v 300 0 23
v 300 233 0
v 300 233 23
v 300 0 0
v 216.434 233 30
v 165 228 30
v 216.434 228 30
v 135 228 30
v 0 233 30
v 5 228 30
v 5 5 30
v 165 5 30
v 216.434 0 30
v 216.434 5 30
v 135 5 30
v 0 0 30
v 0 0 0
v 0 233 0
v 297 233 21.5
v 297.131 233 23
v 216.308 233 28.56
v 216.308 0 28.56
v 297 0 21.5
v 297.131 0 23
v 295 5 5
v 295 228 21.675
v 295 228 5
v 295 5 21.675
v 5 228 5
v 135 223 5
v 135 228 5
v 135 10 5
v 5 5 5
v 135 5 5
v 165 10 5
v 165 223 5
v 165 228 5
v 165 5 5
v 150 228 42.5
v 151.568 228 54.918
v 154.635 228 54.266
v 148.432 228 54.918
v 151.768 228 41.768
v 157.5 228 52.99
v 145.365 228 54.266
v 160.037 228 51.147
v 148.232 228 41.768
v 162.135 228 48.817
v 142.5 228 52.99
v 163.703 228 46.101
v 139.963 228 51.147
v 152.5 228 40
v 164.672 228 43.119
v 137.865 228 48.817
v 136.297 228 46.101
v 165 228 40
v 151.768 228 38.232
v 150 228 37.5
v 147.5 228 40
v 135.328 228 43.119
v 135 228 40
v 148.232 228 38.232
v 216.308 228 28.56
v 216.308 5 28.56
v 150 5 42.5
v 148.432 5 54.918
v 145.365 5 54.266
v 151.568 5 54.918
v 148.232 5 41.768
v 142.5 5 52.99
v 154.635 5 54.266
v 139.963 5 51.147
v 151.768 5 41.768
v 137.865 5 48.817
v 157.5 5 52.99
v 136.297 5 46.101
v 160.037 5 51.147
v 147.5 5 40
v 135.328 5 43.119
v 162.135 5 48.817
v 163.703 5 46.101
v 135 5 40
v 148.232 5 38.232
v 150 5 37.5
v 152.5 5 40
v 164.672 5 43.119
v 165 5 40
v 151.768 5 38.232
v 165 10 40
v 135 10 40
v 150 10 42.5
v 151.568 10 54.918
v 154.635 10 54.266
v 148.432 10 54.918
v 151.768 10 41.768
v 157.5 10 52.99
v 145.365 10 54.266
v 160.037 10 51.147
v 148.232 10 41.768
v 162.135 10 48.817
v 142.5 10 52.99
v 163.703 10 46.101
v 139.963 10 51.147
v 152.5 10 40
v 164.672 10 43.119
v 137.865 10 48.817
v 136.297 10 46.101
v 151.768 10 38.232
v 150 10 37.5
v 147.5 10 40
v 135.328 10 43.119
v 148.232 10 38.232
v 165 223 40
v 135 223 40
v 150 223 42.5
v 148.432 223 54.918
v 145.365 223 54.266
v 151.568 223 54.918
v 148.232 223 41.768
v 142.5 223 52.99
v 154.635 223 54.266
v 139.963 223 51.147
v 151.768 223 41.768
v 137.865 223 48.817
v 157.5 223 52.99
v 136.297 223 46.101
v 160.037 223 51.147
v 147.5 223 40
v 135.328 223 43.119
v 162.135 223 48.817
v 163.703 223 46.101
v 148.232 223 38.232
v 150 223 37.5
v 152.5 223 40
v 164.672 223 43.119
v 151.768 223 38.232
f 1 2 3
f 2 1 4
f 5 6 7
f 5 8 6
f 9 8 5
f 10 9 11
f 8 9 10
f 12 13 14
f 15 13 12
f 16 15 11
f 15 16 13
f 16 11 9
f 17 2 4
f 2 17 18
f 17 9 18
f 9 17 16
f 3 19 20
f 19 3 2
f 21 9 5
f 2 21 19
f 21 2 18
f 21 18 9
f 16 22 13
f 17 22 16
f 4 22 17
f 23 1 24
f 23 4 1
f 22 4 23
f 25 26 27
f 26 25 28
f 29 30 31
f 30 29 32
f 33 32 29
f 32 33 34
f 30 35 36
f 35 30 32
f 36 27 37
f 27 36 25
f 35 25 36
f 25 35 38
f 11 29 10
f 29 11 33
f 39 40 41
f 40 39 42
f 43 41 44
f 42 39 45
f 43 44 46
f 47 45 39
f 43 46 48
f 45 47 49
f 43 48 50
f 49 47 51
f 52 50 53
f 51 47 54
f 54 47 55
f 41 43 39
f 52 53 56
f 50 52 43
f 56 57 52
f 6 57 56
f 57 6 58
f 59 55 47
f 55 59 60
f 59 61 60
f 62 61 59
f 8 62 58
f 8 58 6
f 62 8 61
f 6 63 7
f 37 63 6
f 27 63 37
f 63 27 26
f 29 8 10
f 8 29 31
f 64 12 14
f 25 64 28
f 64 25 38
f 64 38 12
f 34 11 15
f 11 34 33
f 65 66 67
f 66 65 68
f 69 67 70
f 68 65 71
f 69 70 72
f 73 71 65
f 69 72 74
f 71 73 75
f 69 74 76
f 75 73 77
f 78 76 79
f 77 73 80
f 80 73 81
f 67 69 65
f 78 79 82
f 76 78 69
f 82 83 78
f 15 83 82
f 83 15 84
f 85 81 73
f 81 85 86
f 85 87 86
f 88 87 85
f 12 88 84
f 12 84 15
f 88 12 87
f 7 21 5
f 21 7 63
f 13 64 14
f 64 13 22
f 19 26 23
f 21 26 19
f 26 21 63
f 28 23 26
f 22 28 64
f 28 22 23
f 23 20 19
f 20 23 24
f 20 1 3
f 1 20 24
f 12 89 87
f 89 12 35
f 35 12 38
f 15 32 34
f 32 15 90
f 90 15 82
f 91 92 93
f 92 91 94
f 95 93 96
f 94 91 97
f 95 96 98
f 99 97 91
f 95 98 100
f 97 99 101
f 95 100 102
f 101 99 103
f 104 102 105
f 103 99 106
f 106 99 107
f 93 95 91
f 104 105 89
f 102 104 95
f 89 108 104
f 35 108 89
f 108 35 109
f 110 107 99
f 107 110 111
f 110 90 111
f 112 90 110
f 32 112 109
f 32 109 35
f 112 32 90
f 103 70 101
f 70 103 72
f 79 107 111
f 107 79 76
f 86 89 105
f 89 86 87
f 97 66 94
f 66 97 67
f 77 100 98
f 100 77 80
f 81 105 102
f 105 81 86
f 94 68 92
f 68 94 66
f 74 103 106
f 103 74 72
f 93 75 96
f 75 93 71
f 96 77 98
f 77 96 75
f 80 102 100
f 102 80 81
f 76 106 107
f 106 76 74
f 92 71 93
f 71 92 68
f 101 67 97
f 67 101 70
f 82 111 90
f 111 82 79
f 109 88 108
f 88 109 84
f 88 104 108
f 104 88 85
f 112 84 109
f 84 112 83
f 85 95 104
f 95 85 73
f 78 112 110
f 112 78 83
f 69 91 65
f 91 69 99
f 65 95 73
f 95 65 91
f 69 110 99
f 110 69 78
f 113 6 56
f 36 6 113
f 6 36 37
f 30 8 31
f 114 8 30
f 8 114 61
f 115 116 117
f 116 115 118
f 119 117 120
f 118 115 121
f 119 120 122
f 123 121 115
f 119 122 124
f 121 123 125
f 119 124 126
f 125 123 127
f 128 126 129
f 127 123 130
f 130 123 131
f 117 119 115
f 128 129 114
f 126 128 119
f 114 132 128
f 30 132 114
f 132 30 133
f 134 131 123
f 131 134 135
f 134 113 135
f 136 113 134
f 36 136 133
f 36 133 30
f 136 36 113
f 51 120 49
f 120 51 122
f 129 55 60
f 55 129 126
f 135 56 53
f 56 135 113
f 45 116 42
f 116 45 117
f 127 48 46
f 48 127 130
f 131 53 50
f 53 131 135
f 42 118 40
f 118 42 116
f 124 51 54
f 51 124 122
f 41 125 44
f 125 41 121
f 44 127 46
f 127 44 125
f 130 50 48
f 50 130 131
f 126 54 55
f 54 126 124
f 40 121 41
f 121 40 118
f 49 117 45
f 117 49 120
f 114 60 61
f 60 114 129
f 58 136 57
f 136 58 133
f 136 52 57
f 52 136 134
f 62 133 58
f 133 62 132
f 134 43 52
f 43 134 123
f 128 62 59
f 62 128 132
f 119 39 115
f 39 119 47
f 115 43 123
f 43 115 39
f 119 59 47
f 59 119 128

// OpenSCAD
 module Case_bottom(){

    BASE_WIDTH = 300;
    BASE_DEPTH = 233;//210;
    BASE_HEIGHT = 5;
    BOTTOM_HEIGHT = 30; // TODO: Measure this.
    OUTER_WALL = 5;
    HINGE_BOLT_SHAFT_DIAMETER = 5;

    difference(){
        
        // Base cube
        cube([BASE_WIDTH,BASE_DEPTH,BOTTOM_HEIGHT]);
        
        // Cutout for electronics
        translate([OUTER_WALL, OUTER_WALL, BASE_HEIGHT]){
            cube([BASE_WIDTH-(OUTER_WALL*2),BASE_DEPTH-(OUTER_WALL*2),BOTTOM_HEIGHT+OUTER_WALL]);
        }
        
        // Cutout for keyboard
        translate([BASE_WIDTH-3, 0, 21.5]){
            rotate([5,0,90]){
                //color("green")
                //Keyboard();
                cube([233,81,BOTTOM_HEIGHT]);
            }
        }
        
        // Cut-off keyboard lip
        translate([BASE_WIDTH-3, 0, 23]){
            cube([20,233,10]);
        }
    }
    
    // Add hinge
    translate([(BASE_WIDTH/2)-15,OUTER_WALL,0]){
        difference(){
            union(){
                cube([BOTTOM_HEIGHT,OUTER_WALL,(BOTTOM_HEIGHT*1.5)-OUTER_WALL]);
                translate([BOTTOM_HEIGHT/2,0,(BOTTOM_HEIGHT*1.5)-OUTER_WALL]){
                    rotate([-90,0,0]){
                        cylinder(r=BOTTOM_HEIGHT/2,h=OUTER_WALL);
                    }
                }
            }
            translate([BOTTOM_HEIGHT/2,0,(BOTTOM_HEIGHT*1.5)-OUTER_WALL]){
                rotate([-90,0,0]){
                    cylinder(r=HINGE_BOLT_SHAFT_DIAMETER/2,h=OUTER_WALL);
                }
            }
        }
    }
    translate([(BASE_WIDTH/2)-15,BASE_DEPTH-(OUTER_WALL*2),0]){
        difference(){
            union(){
                cube([BOTTOM_HEIGHT,OUTER_WALL,(BOTTOM_HEIGHT*1.5)-OUTER_WALL]);
                translate([BOTTOM_HEIGHT/2,0,(BOTTOM_HEIGHT*1.5)-OUTER_WALL]){
                    rotate([-90,0,0]){
                        cylinder(r=BOTTOM_HEIGHT/2,h=OUTER_WALL);
                    }
                }
            }
            translate([BOTTOM_HEIGHT/2,0,(BOTTOM_HEIGHT*1.5)-OUTER_WALL]){
                rotate([-90,0,0]){
                    cylinder(r=HINGE_BOLT_SHAFT_DIAMETER/2,h=OUTER_WALL);
                }
            }
        }
    }
}

Case_bottom();
